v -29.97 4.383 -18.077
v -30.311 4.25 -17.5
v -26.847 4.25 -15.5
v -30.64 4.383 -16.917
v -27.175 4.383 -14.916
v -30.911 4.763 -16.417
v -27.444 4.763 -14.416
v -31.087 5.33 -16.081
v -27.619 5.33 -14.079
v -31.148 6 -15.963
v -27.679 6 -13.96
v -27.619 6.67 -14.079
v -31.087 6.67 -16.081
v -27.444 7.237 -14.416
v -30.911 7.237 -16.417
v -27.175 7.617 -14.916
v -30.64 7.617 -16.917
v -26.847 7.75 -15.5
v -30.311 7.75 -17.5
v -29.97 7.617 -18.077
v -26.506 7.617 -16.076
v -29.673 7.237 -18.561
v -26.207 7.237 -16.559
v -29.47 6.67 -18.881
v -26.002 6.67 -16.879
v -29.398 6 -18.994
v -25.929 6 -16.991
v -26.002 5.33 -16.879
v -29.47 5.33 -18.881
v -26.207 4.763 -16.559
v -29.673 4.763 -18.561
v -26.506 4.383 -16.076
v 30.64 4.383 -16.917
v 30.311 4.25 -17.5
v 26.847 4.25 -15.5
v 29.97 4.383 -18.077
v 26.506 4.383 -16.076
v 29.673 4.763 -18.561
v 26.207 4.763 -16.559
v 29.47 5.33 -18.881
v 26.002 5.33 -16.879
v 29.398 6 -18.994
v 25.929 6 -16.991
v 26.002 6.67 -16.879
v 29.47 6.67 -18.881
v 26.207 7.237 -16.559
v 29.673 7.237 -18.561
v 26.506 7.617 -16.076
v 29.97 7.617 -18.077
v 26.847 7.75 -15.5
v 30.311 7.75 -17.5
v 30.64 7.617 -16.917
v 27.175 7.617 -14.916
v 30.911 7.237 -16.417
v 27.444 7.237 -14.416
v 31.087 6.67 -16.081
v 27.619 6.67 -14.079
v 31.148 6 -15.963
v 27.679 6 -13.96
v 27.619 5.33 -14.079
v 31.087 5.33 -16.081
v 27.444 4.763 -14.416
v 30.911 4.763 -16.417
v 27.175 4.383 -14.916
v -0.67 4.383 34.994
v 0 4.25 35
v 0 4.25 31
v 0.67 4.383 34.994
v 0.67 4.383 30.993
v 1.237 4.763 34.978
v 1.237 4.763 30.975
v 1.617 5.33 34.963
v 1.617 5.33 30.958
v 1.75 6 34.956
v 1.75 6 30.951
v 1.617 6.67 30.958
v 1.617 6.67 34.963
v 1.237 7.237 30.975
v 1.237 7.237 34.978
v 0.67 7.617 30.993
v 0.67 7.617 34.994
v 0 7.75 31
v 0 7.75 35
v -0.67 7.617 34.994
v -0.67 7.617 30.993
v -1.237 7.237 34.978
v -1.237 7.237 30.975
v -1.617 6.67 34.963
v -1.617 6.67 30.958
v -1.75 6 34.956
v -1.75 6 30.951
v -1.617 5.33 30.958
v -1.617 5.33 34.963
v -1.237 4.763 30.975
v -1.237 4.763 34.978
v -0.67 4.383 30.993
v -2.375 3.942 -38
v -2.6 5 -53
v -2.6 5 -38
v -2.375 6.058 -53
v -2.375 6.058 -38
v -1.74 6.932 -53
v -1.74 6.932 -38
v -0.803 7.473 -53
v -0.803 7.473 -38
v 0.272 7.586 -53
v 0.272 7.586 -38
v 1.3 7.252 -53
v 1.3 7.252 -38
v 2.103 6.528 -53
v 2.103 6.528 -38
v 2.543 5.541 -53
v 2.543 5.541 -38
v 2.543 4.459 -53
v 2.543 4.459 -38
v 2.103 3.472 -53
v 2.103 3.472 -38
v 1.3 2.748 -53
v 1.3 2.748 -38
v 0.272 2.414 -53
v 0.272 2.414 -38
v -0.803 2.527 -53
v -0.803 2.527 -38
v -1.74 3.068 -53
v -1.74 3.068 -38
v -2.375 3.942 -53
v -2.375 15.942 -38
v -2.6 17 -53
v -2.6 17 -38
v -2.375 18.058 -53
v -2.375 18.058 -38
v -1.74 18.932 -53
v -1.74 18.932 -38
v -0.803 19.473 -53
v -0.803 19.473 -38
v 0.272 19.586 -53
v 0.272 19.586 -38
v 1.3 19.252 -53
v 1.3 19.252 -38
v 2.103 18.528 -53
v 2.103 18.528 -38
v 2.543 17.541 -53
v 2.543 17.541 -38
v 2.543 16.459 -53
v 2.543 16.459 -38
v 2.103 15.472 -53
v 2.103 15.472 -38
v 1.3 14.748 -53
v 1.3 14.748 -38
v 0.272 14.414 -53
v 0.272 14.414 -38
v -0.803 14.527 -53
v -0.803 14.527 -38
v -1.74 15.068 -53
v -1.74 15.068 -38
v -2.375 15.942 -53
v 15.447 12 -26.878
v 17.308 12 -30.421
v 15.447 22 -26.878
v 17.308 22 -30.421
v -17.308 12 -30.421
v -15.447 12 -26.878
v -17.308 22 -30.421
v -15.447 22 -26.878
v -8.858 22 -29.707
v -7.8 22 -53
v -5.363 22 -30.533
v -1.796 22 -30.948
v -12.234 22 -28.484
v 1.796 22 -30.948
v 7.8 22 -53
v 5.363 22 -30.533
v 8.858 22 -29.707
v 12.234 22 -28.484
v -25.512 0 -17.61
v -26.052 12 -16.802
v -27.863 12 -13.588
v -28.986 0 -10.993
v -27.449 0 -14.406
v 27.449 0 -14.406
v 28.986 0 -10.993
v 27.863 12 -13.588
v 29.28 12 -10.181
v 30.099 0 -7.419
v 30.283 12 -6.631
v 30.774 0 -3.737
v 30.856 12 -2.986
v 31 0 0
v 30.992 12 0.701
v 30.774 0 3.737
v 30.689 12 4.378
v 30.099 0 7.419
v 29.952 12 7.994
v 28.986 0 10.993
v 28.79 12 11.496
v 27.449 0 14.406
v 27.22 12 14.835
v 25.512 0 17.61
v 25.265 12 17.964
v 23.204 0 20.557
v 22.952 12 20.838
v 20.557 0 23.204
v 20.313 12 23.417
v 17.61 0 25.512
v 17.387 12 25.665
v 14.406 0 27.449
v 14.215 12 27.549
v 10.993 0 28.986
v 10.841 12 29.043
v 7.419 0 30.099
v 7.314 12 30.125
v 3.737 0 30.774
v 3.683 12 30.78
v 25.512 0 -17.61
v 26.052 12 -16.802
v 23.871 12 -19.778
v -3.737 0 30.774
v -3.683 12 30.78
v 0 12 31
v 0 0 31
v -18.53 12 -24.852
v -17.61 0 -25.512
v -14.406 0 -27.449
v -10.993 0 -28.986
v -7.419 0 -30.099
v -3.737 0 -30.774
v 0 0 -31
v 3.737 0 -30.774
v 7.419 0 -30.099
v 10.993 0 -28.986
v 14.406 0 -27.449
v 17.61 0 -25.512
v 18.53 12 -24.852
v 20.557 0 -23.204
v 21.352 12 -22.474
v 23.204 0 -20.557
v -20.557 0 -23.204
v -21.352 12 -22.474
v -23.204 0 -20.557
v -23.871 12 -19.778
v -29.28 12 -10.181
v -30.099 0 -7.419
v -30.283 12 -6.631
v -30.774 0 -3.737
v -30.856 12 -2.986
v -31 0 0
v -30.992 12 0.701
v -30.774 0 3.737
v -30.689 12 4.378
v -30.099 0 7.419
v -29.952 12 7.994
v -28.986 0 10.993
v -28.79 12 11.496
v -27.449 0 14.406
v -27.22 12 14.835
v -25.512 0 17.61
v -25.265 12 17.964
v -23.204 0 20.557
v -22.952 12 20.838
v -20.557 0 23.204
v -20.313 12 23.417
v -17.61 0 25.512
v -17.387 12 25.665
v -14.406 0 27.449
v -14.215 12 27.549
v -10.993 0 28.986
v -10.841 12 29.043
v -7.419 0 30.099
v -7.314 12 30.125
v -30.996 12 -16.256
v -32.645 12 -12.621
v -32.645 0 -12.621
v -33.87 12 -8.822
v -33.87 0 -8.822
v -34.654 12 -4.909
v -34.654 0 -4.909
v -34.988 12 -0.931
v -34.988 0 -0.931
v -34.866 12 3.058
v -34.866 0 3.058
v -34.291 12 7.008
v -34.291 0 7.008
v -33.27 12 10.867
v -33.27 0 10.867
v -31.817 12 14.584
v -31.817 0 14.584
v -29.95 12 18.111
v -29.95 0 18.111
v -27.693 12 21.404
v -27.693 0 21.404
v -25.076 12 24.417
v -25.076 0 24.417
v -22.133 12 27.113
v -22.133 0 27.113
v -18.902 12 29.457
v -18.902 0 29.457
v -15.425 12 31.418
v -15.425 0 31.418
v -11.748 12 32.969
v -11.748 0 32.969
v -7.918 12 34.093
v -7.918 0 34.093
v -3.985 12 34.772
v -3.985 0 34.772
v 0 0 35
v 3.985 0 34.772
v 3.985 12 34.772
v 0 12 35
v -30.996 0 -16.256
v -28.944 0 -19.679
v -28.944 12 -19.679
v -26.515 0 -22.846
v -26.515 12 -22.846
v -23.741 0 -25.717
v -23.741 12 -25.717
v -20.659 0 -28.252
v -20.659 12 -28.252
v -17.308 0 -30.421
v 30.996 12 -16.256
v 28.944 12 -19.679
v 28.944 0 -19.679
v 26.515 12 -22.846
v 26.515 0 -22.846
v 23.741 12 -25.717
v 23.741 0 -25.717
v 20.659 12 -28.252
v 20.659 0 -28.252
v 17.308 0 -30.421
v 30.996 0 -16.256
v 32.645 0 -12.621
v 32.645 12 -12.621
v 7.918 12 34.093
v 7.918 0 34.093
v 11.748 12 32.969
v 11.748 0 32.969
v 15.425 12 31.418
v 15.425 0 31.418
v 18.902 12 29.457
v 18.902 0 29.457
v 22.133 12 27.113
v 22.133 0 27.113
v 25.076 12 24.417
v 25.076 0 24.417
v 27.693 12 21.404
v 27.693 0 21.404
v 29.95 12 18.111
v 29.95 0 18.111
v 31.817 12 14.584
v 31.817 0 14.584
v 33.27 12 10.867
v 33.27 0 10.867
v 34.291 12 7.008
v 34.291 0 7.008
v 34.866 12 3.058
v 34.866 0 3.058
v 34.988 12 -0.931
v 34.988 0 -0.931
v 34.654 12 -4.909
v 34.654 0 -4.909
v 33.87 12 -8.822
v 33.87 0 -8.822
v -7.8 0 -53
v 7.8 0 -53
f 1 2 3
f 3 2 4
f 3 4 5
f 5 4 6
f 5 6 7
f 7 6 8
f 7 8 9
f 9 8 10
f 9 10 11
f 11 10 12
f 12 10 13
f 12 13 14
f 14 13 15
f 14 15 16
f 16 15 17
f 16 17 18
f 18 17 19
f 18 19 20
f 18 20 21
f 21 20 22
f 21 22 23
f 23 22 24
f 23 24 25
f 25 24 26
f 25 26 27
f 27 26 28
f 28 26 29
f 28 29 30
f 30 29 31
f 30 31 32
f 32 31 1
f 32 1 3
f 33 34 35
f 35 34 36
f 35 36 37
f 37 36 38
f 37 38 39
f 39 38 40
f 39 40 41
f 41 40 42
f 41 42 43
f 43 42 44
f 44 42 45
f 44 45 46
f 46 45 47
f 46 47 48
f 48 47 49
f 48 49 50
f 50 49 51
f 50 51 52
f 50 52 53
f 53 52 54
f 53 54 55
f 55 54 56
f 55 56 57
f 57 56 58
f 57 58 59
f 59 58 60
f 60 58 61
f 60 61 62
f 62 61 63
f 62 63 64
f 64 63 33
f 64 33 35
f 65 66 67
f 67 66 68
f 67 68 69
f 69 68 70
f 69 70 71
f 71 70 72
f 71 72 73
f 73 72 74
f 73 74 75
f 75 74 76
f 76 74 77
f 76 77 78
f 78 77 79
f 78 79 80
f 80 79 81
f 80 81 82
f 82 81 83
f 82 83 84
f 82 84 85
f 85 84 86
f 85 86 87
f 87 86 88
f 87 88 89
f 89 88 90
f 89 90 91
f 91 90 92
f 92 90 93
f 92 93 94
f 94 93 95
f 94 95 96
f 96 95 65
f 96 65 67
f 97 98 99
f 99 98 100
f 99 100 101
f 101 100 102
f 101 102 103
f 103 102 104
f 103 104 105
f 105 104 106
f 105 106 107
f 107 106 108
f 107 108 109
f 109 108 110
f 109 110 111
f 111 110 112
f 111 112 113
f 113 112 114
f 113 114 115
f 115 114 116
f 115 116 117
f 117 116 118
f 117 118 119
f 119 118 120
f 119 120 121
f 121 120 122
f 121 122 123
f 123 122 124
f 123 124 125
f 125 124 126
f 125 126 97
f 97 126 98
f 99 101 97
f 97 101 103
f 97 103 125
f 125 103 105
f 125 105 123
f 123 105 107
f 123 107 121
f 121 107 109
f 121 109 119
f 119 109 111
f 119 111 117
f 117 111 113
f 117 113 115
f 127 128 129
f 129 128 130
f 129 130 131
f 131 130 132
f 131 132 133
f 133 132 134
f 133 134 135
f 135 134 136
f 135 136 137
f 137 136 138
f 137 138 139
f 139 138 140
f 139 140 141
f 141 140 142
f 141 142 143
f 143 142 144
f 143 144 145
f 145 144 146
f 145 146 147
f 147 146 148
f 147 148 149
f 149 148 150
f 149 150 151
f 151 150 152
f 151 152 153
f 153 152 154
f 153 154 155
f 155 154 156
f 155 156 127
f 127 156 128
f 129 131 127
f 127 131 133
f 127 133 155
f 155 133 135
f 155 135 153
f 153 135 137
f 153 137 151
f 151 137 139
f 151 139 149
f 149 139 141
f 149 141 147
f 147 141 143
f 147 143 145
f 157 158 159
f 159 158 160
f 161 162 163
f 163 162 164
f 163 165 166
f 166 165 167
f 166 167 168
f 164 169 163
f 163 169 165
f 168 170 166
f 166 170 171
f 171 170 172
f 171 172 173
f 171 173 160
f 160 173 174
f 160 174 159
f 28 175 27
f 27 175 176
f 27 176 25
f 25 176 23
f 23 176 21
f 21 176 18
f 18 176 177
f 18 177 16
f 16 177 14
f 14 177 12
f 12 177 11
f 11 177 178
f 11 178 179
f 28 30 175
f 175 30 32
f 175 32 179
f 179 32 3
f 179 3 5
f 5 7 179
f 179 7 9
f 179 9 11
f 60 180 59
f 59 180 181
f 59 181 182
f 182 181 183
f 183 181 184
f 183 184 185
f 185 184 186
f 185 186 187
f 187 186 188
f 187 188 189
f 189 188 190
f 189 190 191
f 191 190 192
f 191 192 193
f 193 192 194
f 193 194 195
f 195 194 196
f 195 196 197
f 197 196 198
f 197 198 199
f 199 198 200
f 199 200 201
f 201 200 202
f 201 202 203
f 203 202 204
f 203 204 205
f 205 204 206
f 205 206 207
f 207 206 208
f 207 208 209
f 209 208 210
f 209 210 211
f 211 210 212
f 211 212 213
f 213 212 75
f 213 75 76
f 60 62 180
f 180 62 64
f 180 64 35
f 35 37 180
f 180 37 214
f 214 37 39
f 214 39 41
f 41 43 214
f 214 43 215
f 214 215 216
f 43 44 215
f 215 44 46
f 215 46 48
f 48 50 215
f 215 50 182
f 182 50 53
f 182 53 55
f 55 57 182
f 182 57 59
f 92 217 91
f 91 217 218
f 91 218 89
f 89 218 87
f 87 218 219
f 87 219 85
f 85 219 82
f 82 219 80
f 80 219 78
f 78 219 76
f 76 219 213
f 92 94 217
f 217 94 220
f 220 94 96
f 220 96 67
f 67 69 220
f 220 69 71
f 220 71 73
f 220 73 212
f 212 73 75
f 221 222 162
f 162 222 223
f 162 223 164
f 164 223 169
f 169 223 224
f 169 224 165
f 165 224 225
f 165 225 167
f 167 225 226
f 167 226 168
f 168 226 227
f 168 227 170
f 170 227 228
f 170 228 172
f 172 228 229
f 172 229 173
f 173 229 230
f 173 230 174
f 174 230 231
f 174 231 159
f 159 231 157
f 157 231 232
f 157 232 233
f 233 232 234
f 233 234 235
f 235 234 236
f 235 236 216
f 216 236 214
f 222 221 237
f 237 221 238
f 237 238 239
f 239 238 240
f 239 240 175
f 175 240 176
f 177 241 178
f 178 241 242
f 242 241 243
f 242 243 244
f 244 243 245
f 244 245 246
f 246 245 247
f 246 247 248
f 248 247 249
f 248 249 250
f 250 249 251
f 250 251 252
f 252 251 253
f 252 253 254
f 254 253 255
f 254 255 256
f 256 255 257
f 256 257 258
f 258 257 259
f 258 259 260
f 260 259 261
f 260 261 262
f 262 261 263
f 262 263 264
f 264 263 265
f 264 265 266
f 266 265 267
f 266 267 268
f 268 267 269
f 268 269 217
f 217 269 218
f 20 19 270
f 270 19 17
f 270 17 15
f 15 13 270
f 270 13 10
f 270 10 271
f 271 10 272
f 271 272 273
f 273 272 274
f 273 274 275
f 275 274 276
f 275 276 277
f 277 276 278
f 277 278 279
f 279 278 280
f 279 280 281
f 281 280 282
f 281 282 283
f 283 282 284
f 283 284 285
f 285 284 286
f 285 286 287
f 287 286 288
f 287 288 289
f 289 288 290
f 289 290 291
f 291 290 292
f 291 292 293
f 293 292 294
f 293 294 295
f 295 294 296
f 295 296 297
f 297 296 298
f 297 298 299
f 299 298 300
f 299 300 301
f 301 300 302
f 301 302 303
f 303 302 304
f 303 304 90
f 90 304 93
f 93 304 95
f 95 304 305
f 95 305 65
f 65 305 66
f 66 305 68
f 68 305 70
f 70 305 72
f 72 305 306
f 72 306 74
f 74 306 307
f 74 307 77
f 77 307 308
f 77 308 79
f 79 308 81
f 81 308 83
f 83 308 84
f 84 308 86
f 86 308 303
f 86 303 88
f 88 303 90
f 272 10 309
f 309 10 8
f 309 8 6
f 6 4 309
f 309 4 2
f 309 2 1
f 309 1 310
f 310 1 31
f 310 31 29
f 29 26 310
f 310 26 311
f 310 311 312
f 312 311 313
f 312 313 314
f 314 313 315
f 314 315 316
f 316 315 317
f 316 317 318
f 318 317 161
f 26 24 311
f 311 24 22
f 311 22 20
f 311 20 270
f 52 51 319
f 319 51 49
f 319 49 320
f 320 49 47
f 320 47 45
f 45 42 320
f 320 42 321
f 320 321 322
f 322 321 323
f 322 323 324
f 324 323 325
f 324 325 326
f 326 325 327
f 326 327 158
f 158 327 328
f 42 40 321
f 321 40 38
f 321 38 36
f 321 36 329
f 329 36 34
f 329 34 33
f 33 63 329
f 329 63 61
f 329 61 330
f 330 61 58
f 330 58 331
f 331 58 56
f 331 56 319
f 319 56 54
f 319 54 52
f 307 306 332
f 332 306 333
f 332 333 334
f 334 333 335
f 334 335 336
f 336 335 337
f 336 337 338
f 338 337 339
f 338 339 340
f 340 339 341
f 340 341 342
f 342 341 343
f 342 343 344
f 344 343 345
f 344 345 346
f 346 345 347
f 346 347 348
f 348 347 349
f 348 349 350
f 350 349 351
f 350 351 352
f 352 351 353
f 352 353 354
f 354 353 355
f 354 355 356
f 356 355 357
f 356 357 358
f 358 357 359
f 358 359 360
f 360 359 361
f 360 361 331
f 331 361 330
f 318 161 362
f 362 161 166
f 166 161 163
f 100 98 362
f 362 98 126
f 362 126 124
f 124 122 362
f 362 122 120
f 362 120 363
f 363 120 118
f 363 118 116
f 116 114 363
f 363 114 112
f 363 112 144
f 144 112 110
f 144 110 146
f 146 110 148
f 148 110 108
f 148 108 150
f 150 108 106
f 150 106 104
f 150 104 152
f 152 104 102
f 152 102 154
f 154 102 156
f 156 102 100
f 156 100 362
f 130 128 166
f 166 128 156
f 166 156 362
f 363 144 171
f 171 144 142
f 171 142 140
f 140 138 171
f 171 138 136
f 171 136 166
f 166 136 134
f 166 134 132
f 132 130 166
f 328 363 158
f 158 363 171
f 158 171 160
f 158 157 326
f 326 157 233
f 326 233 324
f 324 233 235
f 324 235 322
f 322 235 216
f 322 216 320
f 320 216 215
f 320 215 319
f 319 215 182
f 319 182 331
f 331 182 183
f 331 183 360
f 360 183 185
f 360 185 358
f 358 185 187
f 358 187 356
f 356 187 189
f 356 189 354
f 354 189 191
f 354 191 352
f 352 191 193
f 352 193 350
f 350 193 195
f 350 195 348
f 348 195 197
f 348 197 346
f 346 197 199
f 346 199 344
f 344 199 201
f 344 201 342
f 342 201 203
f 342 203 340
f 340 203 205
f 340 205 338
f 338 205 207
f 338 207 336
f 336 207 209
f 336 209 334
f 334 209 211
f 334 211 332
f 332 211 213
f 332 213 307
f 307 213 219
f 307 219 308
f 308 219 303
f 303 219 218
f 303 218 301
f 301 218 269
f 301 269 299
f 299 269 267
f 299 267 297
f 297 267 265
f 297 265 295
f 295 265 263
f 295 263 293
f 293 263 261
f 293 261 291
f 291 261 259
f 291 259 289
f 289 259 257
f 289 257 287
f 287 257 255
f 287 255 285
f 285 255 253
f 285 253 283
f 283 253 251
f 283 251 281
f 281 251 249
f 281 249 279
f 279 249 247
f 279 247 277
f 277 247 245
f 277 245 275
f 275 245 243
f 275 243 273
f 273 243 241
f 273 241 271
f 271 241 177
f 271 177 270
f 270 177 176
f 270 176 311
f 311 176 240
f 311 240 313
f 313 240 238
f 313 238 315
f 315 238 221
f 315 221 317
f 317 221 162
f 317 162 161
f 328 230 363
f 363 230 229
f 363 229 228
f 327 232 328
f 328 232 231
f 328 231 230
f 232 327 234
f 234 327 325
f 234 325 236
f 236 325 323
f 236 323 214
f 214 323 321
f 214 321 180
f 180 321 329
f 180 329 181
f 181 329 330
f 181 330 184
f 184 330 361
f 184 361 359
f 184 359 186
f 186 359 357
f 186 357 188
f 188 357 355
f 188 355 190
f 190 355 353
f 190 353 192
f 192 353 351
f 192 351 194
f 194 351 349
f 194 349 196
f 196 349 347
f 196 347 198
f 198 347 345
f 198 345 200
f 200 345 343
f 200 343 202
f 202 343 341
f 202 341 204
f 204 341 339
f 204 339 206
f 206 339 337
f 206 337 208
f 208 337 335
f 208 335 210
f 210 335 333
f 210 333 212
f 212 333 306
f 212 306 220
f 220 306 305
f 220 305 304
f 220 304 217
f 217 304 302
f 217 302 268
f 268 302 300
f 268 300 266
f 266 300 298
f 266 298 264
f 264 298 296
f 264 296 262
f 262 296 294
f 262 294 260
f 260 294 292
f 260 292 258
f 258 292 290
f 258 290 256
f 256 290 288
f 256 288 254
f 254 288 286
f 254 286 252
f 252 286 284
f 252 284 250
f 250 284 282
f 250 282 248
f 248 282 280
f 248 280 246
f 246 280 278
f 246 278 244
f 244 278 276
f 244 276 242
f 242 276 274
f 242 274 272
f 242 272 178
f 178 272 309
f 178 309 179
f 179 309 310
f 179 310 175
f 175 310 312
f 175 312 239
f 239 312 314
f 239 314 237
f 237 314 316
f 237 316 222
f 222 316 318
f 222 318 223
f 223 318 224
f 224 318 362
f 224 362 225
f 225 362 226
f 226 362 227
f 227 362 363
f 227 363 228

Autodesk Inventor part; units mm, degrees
sketch "Sketch1" plane through (0, 0, 0) normal (0, 1, 0) x (-1, 0, 0)
  circle A0 centre (0, 0) radius 31
  circle A1 centre (0, 0) radius 35
  line L0 (17.3082, -30.4208) -> (7.8, -53)
  line L1 (7.8, -53) -> (-7.8, -53)
  line L2 (-7.8, -53) -> (-17.3082, -30.4208)
  line L3 (17.3082, -30.4208) -> (-15.7757, -30.4208) construction
  line L4 (-15.7757, -30.4208) -> (-17.7199, -30.4208) construction
  line L5 (0, 0) -> (0, -70.1965) construction
  dimension "d0" = 62
  dimension "d1" = 70
  dimension "d2" = 18
  dimension "d14" = 17.3082
  dimension "d15" = 17.3082
  dimension "d16" = 7.8
  dimension "d17" = 7.8
extrude "Extrusion1" add sketch "Sketch1" along normal blind 12
sketch "Sketch2" plane through (7.8, 0, -53) normal (0, 0, -1) x (-1, 0, 0)
  line L0 (0, 0) -> (15.6, 0) projected
  line L1 (15.6, 0) -> (15.6, 12) projected
  line L2 (0, 12) -> (15.6, 12) projected
  line L3 (0, 0) -> (0, 12) projected
  circle A0 centre (7.8, 17) radius 2.6
  circle A1 centre (7.8, 5) radius 2.6
  line L4 (0, 12) -> (15.6, 12) construction
  line L5 (0, 0) -> (15.6, 0) construction
  line L6 (7.8, 17) -> (7.8, 22) construction
  line L7 (7.8, 10.4006) -> (15.6, 10.4006) construction
  line L8 (15.6, 0) -> (15.6, 12) construction
  line L9 (7.8, 8.8613) -> (0, 8.8613) construction
  line L10 (0, 0) -> (0, 12) construction
  line L11 (7.8, 17) -> (7.8, 1.4261) construction
  point P0 (7.8, 0)
  dimension "d5" = 5.2
  dimension "d6" = 5.2
  dimension "d7" = 12
  dimension "d11" = 5
  dimension "d20" = 5
sketch "Sketch3" plane through (0, 12, 0) normal (0, 1, 0) x (1, 0, 0)
  line L0 (17.3082, 30.4208) -> (7.8, 53) projected
  line L1 (7.8, 53) -> (-7.8, 53) projected
  line L2 (-7.8, 53) -> (-17.3082, 30.4208) projected
  arc A0 (-17.3082, 30.4208) -> (17.3082, 30.4208) centre (0, 0) ccw projected
  circle A1 centre (0, 0) radius 31 projected
  arc A2 (-17.3082, 30.4208) -> (17.3082, 30.4208) centre (0, 0) ccw projected
  line L3 (17.3082, 30.4208) -> (15.4466, 26.8775)
  circle A3 centre (0, 0) radius 31 projected
  line L4 (-7.8, 53) -> (-17.3082, 30.4208) projected
  line L5 (-17.3082, 30.4208) -> (-15.4466, 26.8775)
extrude "Extrusion2" add sketch "Sketch3" along normal blind 10 contours L3 A1 L5 L2 L1 L0
extrude "Extrusion3" cut sketch "Sketch2" against normal blind 15 contours A0 | A1
ref_plane "Work Plane1" through (0, 0, 35) normal (0, 0, 1) x (1, 0, 0)
sketch "Sketch5" plane through (0, 0, 35) normal (0, 0, 1) x (1, 0, 0)
  line L0 (-17.3082, 0) -> (17.3082, 0) projected
  line L1 (17.3082, 0) -> (17.3082, 12) projected
  line L2 (-17.3082, 12) -> (17.3082, 12) projected
  line L3 (-17.3082, 0) -> (-17.3082, 12) projected
  line L4 (0, 0) -> (0, 4.5061) construction
  circle A0 centre (0, 6) radius 1.75
  dimension "d18" = 3.5
  dimension "d19" = 6
extrude "Extrusion4" cut sketch "Sketch5" against normal blind 15 contours A0
ref_plane "Work Plane2" through (0, 0, 0) normal (0.866, 0, -0.5) x (0, 1, 0)
ref_plane "Work Plane3" through (30.3109, 0, -17.5) normal (0.866, 0, -0.5) x (0, 1, 0)
sketch "Sketch6" plane through (30.3109, 0, -17.5) normal (0.866, 0, -0.5) x (0, 1, 0)
  circle A0 centre (6, 0) radius 1.75
  line L0 (0, -17.6911) -> (0, 35) projected
  point P0 (0, 0)
  point P1 (0, -34.9993)
  dimension "d24" = 6
  dimension "d25" = 3.5
extrude "Extrusion5" cut sketch "Sketch6" against normal blind 15
ref_plane "Work Plane6" through (-30.3109, 0, -17.5) normal (0.866, 0, 0.5) x (0, 1, 0)
ref_plane "Work Plane5" through (0, 0, 0) normal (0.866, 0, 0.5) x (0, 1, 0)
sketch "Sketch8" plane through (-30.3109, 0, -17.5) normal (0.866, 0, 0.5) x (0, 1, 0)
  circle A0 centre (6, 0) radius 1.75
  line L0 (0, -34.9993) -> (0, 35) projected
  point P0 (0, 0)
  point P1 (0, -17.6911)
  dimension "d33" = 3.5
  dimension "d34" = 6
extrude "Extrusion7" cut sketch "Sketch8" along normal blind 15
properties part number "ring_light_holder"
